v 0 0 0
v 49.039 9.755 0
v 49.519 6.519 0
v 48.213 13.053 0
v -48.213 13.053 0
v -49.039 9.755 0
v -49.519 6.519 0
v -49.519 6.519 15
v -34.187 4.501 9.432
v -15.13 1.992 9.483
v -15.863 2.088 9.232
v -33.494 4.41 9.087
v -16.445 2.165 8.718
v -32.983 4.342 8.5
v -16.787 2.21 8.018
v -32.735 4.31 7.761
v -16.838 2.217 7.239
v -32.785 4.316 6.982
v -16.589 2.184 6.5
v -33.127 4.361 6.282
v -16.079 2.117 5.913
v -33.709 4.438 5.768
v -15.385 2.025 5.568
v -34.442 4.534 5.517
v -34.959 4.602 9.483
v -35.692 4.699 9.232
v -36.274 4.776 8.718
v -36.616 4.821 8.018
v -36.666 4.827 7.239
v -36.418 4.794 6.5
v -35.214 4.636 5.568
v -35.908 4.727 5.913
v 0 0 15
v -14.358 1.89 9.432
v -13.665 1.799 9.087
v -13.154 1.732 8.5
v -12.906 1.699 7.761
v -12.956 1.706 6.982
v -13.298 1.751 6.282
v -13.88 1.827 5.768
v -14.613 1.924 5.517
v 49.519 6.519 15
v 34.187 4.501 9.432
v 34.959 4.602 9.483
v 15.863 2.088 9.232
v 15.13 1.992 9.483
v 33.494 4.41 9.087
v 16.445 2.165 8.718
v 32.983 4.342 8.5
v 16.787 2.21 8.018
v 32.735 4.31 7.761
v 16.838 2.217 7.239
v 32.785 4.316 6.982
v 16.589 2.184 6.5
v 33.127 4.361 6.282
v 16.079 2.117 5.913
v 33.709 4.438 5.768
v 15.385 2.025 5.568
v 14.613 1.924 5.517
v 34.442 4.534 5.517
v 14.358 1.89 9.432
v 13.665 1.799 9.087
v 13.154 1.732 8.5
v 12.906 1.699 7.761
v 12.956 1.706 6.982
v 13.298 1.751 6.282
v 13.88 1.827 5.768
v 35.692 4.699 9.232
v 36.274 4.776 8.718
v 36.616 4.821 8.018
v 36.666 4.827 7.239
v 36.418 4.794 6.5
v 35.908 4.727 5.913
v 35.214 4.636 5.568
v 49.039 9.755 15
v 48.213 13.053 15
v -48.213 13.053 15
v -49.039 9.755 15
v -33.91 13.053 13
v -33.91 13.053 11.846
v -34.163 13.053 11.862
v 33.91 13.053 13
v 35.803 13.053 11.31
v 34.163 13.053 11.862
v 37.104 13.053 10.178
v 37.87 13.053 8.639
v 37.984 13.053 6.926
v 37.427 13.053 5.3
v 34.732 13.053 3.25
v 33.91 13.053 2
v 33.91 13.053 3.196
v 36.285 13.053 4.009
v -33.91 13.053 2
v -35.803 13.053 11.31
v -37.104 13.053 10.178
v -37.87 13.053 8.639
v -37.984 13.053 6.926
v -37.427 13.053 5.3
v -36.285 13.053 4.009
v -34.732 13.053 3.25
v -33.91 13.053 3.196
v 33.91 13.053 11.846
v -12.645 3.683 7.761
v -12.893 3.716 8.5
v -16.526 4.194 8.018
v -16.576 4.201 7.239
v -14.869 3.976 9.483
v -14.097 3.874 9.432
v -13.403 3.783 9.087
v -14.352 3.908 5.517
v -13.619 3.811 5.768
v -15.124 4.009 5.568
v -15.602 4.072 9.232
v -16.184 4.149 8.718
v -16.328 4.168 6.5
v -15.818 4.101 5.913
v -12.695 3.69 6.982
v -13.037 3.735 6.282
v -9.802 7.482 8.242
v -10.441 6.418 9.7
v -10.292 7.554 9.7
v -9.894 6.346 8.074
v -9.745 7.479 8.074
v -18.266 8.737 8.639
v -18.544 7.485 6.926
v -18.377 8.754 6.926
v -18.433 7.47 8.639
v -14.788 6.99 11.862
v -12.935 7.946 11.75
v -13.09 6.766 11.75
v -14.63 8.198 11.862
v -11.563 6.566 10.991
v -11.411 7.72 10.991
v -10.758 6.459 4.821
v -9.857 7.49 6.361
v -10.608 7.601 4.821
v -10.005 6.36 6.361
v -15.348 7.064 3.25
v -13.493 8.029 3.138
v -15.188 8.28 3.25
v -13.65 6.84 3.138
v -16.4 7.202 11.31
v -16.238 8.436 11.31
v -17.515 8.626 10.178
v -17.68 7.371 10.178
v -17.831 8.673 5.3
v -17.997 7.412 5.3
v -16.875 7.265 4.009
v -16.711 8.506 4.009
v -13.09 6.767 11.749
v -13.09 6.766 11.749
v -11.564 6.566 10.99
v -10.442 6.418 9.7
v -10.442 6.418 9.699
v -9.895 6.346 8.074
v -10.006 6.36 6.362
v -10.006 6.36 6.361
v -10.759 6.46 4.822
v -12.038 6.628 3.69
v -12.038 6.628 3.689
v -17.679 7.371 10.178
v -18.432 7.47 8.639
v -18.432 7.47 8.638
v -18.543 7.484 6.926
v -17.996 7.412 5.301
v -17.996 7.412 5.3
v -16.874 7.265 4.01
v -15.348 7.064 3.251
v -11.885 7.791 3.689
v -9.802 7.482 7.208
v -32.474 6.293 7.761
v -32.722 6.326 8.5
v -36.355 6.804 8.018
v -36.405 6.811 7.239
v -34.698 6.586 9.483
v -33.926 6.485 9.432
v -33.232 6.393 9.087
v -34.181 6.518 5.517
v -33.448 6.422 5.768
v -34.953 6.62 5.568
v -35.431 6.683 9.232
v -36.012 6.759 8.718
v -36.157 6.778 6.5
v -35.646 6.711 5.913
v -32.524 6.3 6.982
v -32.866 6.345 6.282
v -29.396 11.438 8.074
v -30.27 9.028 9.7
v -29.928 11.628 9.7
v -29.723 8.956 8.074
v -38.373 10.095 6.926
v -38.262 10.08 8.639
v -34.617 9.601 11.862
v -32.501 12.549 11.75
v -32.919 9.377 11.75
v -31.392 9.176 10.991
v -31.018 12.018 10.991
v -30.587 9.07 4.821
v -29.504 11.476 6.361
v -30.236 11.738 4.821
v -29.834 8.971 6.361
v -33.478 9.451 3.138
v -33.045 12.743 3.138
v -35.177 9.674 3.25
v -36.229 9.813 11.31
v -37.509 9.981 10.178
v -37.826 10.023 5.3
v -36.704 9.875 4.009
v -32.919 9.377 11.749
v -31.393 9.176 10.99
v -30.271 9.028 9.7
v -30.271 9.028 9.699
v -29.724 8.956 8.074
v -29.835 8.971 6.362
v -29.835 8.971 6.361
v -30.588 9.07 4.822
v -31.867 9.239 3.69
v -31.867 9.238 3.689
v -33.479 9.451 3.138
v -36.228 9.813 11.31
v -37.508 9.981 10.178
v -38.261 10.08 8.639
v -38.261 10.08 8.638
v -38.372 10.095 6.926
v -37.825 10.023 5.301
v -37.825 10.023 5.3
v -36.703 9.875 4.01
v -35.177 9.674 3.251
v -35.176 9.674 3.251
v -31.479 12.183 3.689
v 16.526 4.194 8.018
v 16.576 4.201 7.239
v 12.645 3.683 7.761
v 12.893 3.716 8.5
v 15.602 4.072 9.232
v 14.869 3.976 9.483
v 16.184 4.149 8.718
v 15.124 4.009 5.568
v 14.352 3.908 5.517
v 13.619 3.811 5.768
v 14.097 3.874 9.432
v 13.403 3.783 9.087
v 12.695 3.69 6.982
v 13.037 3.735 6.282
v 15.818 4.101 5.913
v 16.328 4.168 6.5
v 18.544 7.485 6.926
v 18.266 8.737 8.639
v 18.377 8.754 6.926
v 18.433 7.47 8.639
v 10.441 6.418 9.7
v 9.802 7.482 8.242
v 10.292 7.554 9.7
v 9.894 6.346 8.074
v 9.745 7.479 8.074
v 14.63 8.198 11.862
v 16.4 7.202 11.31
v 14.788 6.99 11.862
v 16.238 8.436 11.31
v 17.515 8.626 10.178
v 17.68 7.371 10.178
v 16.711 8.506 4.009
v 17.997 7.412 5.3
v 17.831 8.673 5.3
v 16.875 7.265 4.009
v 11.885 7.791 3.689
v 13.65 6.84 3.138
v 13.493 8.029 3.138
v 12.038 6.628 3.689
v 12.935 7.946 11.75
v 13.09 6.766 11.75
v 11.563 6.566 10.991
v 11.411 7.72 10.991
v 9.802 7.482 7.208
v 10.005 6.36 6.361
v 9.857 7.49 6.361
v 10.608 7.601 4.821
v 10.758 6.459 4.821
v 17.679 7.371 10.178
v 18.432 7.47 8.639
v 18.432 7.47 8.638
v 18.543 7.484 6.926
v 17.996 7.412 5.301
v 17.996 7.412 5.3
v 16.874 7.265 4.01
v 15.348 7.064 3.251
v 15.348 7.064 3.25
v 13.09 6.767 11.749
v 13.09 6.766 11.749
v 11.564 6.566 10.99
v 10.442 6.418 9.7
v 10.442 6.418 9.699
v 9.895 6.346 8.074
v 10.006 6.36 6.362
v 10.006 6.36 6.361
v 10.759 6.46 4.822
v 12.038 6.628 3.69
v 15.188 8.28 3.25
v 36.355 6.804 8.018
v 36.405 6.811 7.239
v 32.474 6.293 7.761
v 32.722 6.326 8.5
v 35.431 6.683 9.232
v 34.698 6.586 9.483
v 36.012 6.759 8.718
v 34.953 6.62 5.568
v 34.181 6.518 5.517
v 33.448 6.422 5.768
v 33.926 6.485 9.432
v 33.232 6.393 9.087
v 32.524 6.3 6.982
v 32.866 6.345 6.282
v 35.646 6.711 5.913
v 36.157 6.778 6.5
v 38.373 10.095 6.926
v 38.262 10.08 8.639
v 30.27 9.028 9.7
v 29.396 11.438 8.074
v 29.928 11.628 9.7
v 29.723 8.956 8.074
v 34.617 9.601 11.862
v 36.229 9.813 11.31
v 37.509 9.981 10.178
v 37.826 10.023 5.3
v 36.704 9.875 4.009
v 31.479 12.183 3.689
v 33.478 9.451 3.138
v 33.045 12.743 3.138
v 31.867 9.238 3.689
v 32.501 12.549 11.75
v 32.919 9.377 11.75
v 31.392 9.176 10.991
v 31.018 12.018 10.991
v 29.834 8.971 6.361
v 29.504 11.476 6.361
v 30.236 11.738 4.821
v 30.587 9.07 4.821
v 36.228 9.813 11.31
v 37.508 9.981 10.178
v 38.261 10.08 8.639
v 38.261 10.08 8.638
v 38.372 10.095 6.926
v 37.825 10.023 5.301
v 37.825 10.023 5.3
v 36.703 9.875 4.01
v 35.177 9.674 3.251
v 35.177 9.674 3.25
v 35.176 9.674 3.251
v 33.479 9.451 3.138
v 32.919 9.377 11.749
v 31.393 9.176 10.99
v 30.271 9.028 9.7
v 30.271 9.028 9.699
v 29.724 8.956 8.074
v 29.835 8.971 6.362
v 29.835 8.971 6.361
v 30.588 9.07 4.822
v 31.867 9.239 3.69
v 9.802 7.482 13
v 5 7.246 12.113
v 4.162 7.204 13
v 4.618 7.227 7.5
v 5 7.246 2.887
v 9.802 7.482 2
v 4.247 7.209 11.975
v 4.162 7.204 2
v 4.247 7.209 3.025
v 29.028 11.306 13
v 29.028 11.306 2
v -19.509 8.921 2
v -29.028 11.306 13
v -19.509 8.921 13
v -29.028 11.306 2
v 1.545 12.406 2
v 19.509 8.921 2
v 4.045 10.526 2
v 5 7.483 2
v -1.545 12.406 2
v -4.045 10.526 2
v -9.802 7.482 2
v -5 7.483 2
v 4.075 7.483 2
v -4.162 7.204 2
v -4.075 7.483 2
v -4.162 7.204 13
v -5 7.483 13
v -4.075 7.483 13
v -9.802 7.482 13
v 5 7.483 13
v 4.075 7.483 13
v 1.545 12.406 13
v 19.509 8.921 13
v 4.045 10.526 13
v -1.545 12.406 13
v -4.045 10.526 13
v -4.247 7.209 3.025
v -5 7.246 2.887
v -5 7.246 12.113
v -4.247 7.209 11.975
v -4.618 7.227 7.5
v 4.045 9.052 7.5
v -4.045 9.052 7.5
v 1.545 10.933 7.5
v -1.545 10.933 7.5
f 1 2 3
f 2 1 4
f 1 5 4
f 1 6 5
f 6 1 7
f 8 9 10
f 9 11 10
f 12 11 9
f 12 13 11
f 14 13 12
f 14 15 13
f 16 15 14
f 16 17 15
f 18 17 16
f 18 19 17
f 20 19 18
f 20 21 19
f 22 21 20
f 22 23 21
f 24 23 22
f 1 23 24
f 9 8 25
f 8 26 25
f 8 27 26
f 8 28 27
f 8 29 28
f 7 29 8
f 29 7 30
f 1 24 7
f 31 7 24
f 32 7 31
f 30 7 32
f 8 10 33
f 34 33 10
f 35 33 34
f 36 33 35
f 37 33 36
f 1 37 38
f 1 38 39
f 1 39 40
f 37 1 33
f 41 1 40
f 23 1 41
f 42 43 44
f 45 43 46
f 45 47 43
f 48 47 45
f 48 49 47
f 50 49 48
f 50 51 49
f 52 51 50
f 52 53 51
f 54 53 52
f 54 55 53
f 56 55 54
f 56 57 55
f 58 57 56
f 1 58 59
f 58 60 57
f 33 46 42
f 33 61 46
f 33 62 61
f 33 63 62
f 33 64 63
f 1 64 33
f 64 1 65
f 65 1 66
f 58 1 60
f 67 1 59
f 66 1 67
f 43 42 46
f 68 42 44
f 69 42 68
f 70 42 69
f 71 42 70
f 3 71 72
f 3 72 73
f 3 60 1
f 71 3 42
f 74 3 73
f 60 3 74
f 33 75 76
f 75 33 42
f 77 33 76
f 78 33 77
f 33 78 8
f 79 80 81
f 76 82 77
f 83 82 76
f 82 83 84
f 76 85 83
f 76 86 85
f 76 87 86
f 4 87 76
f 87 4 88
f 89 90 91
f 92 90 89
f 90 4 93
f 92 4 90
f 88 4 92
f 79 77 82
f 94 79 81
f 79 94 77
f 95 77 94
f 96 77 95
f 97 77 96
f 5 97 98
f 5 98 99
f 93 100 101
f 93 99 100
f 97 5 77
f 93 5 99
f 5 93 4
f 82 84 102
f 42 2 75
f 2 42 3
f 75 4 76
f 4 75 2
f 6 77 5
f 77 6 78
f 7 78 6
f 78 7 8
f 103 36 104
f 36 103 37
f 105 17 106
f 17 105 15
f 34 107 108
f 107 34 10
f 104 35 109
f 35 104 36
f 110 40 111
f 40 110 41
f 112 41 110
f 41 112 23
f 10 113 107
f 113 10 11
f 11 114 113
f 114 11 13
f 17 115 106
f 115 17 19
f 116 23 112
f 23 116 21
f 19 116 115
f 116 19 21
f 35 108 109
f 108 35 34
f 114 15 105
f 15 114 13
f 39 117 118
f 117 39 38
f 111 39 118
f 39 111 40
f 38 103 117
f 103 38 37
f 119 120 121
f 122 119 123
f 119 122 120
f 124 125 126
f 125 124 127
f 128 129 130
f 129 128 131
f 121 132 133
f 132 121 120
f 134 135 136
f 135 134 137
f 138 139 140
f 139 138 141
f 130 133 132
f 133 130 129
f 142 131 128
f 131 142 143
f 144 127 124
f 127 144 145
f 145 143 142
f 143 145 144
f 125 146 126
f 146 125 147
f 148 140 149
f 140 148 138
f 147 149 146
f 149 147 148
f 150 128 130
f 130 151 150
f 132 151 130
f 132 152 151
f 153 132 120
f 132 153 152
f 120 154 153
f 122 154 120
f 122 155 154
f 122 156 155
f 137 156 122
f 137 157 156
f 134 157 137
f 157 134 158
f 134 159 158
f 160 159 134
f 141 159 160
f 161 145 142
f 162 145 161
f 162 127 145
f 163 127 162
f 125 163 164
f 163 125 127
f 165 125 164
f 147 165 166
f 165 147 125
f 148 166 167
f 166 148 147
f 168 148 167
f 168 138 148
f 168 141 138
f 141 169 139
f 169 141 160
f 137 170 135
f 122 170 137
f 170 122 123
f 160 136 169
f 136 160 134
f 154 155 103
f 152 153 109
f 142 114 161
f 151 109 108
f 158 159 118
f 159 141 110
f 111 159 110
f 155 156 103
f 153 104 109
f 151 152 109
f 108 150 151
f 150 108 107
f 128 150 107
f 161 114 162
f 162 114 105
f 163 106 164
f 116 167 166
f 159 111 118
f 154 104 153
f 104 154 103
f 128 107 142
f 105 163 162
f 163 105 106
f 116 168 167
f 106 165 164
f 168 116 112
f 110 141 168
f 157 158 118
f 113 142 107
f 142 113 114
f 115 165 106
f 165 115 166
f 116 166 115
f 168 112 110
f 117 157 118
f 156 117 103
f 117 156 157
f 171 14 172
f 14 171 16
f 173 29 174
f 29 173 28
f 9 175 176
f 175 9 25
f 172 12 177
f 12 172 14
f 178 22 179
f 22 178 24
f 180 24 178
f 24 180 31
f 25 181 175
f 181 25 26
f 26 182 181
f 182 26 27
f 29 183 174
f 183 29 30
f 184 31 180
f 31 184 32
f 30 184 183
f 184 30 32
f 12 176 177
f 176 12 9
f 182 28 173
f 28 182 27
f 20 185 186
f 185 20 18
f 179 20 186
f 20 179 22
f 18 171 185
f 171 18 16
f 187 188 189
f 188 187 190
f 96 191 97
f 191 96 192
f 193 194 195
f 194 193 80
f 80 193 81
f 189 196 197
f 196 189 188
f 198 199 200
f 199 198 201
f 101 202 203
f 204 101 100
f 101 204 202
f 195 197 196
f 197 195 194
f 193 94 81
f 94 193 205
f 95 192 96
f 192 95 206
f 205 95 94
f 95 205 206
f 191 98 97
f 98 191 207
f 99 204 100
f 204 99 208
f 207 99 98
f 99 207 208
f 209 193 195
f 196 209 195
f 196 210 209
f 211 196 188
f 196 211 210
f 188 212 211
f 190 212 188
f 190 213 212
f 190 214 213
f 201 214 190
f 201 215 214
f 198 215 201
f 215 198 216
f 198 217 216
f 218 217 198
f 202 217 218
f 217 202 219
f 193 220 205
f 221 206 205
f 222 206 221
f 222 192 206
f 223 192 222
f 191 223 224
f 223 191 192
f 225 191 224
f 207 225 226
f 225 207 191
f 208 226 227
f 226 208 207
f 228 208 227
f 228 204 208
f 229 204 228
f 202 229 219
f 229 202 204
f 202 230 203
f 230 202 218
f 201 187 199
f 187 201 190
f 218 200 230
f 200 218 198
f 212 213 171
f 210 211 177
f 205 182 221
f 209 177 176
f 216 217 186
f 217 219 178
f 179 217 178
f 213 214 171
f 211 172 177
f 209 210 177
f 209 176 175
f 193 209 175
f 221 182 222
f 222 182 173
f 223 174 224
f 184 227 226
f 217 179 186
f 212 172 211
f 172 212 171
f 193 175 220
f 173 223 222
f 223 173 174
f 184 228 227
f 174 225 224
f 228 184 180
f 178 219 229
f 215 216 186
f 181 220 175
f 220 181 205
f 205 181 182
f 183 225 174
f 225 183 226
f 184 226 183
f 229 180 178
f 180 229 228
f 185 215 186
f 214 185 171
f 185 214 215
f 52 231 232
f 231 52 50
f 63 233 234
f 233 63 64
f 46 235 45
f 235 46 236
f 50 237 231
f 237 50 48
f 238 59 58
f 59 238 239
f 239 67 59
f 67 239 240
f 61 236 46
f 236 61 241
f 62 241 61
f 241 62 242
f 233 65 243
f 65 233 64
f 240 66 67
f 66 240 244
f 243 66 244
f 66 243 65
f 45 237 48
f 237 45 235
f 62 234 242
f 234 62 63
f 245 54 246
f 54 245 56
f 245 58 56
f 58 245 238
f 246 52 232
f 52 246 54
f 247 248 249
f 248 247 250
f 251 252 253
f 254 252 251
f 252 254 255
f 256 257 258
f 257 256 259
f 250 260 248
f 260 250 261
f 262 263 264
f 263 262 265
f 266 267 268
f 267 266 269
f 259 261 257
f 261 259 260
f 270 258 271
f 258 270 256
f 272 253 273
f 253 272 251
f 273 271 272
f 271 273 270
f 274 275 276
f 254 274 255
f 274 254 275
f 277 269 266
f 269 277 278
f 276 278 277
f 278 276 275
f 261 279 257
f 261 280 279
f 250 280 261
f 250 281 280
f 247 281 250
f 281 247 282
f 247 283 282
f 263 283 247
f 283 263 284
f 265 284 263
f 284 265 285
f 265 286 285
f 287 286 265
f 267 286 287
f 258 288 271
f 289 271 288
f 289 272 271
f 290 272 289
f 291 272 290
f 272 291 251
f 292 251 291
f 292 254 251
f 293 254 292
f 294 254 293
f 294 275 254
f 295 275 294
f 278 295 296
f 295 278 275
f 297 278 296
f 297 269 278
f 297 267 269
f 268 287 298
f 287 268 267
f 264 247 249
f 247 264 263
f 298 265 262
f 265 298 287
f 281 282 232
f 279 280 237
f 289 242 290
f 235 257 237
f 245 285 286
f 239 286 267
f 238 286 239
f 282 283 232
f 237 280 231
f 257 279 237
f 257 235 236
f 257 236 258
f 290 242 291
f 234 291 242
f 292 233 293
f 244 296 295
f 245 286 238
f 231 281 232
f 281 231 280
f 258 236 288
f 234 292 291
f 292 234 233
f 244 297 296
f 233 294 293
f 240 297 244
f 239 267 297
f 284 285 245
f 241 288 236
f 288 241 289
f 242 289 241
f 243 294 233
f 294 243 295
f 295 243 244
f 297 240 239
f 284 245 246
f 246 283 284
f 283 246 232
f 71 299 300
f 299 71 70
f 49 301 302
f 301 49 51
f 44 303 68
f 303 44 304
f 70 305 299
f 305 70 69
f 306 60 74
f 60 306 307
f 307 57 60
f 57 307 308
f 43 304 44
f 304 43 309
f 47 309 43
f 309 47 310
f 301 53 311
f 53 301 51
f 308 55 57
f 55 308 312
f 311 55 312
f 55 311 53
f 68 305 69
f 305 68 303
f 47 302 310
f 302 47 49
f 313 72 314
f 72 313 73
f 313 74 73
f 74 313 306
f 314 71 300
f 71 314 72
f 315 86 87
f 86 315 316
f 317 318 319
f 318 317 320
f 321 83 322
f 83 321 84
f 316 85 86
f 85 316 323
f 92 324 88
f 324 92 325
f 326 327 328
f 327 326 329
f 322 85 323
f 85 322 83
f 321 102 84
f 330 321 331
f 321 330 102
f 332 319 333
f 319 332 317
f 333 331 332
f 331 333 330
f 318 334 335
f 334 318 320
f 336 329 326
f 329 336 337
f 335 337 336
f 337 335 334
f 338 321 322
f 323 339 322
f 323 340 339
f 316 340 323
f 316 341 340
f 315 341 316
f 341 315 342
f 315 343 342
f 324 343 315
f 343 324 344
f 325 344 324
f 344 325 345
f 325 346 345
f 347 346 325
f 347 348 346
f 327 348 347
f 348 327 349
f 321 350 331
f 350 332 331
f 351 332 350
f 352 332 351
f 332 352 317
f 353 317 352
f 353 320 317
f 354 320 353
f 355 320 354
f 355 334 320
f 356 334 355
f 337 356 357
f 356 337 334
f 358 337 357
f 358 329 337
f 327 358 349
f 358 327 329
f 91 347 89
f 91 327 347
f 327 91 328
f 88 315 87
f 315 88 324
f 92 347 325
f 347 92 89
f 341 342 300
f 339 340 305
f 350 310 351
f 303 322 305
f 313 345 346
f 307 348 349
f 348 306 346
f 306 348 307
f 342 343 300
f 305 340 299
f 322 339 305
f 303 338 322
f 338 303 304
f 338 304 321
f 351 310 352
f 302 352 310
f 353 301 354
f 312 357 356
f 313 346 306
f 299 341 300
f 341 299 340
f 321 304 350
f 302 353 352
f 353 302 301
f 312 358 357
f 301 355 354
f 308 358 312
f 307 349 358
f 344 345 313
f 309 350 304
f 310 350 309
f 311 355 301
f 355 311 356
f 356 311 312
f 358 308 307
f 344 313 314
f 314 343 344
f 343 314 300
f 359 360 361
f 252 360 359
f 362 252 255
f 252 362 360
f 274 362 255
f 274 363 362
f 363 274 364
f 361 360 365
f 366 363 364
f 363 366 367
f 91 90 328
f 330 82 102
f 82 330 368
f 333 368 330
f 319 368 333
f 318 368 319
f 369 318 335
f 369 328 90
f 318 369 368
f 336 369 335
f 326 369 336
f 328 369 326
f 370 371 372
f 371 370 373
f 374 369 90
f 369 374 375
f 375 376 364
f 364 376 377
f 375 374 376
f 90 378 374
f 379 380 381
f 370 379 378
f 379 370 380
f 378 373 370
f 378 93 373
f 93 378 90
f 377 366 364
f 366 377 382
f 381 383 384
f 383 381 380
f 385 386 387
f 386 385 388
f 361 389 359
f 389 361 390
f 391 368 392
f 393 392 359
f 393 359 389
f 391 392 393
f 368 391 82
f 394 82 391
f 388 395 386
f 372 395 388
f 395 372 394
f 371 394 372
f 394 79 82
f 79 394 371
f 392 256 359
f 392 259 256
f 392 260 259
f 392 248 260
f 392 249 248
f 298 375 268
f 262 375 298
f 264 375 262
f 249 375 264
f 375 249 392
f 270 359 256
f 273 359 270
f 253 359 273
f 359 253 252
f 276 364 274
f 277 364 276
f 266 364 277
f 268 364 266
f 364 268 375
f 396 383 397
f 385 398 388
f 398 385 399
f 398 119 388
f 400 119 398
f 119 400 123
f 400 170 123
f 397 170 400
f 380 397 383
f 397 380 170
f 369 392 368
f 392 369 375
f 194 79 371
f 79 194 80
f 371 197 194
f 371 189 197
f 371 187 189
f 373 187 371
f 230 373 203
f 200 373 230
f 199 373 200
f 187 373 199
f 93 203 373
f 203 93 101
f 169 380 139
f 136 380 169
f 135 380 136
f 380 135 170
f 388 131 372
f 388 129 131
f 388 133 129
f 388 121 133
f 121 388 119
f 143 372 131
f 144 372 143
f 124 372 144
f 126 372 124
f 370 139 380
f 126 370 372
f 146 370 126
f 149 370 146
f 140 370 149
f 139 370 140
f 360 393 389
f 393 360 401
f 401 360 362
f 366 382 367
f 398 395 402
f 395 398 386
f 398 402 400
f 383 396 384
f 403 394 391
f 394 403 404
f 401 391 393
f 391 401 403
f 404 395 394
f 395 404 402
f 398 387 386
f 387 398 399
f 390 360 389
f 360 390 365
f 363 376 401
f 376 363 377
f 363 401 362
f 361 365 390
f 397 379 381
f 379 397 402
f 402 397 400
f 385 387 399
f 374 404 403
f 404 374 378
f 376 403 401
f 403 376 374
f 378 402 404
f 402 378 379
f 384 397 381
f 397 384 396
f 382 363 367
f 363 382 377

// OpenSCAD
difference(){
	union() {
		difference() {
			intersection() {
				linear_extrude(height = 15) {
					polygon(points = [[0, 0], [99.1444861374, 13.0526192220], [-99.1444861374, 13.0526192220]]);
				}
				cylinder($fn = 64, h = 15, r = 50);
			}
			translate(v = [0, 107, 2]) {
				cylinder($fn = 64, h = 11, r = 100);
			}
			translate(v = [-14.8716729206, 1.9578928833, 7.5000000000]) {
				rotate(a = -90, v = [-0.9914448614, 0.1305261922, 0.0000000000]) {
					translate(v = [0, 0, -9]) {
						union() {
							cylinder($fn = 16, h = 16, r = 2);
							cylinder($fn = 16, h = 4, r = 4.4000000000);
							translate(v = [0, 0, 3.9990000000]) {
								cylinder($fn = 16, h = 3, r1 = 4.4000000000, r2 = 2);
							}
						}
					}
				}
			}
			translate(v = [-34.7005701481, 4.5684167277, 7.5000000000]) {
				rotate(a = -90, v = [-0.9914448614, 0.1305261922, 0.0000000000]) {
					translate(v = [0, 0, -9]) {
						union() {
							cylinder($fn = 16, h = 16, r = 2);
							cylinder($fn = 16, h = 4, r = 4.4000000000);
							translate(v = [0, 0, 3.9990000000]) {
								cylinder($fn = 16, h = 3, r1 = 4.4000000000, r2 = 2);
							}
						}
					}
				}
			}
			translate(v = [14.8716729206, 1.9578928833, 7.5000000000]) {
				rotate(a = 90, v = [0.9914448614, 0.1305261922, 0.0000000000]) {
					translate(v = [0, 0, -9]) {
						union() {
							cylinder($fn = 16, h = 16, r = 2);
							cylinder($fn = 16, h = 4, r = 4.4000000000);
							translate(v = [0, 0, 3.9990000000]) {
								cylinder($fn = 16, h = 3, r1 = 4.4000000000, r2 = 2);
							}
						}
					}
				}
			}
			translate(v = [34.7005701481, 4.5684167277, 7.5000000000]) {
				rotate(a = 90, v = [0.9914448614, 0.1305261922, 0.0000000000]) {
					translate(v = [0, 0, -9]) {
						union() {
							cylinder($fn = 16, h = 16, r = 2);
							cylinder($fn = 16, h = 4, r = 4.4000000000);
							translate(v = [0, 0, 3.9990000000]) {
								cylinder($fn = 16, h = 3, r1 = 4.4000000000, r2 = 2);
							}
						}
					}
				}
			}
		}
		union() {
			translate(v = [0, 4, 0]) {
				rotate(a = -15, v = [1, 0, 0]) {
					difference() {
						cylinder($fn = 10, h = 15, r = 5);
						translate(v = [-8, -8, -1]) {
							cube(size = [16, 8, 17]);
						}
					}
				}
			}
			translate(v = [0, 4, 15]) {
				scale(v = [1, 1, -1]) {
					rotate(a = -15, v = [1, 0, 0]) {
						difference() {
							cylinder($fn = 10, h = 15, r = 5);
							translate(v = [-8, -8, -1]) {
								cube(size = [16, 8, 17]);
							}
						}
					}
				}
			}
		}
	}
	/* Holes Below*/
	union(){
		union() {
			translate(v = [-100, -100, 15]) {
				cube(size = [200, 200, 15]);
			}
			translate(v = [-100, -100, -15]) {
				cube(size = [200, 200, 15]);
			}
		}
	} /* End Holes */ 
}
